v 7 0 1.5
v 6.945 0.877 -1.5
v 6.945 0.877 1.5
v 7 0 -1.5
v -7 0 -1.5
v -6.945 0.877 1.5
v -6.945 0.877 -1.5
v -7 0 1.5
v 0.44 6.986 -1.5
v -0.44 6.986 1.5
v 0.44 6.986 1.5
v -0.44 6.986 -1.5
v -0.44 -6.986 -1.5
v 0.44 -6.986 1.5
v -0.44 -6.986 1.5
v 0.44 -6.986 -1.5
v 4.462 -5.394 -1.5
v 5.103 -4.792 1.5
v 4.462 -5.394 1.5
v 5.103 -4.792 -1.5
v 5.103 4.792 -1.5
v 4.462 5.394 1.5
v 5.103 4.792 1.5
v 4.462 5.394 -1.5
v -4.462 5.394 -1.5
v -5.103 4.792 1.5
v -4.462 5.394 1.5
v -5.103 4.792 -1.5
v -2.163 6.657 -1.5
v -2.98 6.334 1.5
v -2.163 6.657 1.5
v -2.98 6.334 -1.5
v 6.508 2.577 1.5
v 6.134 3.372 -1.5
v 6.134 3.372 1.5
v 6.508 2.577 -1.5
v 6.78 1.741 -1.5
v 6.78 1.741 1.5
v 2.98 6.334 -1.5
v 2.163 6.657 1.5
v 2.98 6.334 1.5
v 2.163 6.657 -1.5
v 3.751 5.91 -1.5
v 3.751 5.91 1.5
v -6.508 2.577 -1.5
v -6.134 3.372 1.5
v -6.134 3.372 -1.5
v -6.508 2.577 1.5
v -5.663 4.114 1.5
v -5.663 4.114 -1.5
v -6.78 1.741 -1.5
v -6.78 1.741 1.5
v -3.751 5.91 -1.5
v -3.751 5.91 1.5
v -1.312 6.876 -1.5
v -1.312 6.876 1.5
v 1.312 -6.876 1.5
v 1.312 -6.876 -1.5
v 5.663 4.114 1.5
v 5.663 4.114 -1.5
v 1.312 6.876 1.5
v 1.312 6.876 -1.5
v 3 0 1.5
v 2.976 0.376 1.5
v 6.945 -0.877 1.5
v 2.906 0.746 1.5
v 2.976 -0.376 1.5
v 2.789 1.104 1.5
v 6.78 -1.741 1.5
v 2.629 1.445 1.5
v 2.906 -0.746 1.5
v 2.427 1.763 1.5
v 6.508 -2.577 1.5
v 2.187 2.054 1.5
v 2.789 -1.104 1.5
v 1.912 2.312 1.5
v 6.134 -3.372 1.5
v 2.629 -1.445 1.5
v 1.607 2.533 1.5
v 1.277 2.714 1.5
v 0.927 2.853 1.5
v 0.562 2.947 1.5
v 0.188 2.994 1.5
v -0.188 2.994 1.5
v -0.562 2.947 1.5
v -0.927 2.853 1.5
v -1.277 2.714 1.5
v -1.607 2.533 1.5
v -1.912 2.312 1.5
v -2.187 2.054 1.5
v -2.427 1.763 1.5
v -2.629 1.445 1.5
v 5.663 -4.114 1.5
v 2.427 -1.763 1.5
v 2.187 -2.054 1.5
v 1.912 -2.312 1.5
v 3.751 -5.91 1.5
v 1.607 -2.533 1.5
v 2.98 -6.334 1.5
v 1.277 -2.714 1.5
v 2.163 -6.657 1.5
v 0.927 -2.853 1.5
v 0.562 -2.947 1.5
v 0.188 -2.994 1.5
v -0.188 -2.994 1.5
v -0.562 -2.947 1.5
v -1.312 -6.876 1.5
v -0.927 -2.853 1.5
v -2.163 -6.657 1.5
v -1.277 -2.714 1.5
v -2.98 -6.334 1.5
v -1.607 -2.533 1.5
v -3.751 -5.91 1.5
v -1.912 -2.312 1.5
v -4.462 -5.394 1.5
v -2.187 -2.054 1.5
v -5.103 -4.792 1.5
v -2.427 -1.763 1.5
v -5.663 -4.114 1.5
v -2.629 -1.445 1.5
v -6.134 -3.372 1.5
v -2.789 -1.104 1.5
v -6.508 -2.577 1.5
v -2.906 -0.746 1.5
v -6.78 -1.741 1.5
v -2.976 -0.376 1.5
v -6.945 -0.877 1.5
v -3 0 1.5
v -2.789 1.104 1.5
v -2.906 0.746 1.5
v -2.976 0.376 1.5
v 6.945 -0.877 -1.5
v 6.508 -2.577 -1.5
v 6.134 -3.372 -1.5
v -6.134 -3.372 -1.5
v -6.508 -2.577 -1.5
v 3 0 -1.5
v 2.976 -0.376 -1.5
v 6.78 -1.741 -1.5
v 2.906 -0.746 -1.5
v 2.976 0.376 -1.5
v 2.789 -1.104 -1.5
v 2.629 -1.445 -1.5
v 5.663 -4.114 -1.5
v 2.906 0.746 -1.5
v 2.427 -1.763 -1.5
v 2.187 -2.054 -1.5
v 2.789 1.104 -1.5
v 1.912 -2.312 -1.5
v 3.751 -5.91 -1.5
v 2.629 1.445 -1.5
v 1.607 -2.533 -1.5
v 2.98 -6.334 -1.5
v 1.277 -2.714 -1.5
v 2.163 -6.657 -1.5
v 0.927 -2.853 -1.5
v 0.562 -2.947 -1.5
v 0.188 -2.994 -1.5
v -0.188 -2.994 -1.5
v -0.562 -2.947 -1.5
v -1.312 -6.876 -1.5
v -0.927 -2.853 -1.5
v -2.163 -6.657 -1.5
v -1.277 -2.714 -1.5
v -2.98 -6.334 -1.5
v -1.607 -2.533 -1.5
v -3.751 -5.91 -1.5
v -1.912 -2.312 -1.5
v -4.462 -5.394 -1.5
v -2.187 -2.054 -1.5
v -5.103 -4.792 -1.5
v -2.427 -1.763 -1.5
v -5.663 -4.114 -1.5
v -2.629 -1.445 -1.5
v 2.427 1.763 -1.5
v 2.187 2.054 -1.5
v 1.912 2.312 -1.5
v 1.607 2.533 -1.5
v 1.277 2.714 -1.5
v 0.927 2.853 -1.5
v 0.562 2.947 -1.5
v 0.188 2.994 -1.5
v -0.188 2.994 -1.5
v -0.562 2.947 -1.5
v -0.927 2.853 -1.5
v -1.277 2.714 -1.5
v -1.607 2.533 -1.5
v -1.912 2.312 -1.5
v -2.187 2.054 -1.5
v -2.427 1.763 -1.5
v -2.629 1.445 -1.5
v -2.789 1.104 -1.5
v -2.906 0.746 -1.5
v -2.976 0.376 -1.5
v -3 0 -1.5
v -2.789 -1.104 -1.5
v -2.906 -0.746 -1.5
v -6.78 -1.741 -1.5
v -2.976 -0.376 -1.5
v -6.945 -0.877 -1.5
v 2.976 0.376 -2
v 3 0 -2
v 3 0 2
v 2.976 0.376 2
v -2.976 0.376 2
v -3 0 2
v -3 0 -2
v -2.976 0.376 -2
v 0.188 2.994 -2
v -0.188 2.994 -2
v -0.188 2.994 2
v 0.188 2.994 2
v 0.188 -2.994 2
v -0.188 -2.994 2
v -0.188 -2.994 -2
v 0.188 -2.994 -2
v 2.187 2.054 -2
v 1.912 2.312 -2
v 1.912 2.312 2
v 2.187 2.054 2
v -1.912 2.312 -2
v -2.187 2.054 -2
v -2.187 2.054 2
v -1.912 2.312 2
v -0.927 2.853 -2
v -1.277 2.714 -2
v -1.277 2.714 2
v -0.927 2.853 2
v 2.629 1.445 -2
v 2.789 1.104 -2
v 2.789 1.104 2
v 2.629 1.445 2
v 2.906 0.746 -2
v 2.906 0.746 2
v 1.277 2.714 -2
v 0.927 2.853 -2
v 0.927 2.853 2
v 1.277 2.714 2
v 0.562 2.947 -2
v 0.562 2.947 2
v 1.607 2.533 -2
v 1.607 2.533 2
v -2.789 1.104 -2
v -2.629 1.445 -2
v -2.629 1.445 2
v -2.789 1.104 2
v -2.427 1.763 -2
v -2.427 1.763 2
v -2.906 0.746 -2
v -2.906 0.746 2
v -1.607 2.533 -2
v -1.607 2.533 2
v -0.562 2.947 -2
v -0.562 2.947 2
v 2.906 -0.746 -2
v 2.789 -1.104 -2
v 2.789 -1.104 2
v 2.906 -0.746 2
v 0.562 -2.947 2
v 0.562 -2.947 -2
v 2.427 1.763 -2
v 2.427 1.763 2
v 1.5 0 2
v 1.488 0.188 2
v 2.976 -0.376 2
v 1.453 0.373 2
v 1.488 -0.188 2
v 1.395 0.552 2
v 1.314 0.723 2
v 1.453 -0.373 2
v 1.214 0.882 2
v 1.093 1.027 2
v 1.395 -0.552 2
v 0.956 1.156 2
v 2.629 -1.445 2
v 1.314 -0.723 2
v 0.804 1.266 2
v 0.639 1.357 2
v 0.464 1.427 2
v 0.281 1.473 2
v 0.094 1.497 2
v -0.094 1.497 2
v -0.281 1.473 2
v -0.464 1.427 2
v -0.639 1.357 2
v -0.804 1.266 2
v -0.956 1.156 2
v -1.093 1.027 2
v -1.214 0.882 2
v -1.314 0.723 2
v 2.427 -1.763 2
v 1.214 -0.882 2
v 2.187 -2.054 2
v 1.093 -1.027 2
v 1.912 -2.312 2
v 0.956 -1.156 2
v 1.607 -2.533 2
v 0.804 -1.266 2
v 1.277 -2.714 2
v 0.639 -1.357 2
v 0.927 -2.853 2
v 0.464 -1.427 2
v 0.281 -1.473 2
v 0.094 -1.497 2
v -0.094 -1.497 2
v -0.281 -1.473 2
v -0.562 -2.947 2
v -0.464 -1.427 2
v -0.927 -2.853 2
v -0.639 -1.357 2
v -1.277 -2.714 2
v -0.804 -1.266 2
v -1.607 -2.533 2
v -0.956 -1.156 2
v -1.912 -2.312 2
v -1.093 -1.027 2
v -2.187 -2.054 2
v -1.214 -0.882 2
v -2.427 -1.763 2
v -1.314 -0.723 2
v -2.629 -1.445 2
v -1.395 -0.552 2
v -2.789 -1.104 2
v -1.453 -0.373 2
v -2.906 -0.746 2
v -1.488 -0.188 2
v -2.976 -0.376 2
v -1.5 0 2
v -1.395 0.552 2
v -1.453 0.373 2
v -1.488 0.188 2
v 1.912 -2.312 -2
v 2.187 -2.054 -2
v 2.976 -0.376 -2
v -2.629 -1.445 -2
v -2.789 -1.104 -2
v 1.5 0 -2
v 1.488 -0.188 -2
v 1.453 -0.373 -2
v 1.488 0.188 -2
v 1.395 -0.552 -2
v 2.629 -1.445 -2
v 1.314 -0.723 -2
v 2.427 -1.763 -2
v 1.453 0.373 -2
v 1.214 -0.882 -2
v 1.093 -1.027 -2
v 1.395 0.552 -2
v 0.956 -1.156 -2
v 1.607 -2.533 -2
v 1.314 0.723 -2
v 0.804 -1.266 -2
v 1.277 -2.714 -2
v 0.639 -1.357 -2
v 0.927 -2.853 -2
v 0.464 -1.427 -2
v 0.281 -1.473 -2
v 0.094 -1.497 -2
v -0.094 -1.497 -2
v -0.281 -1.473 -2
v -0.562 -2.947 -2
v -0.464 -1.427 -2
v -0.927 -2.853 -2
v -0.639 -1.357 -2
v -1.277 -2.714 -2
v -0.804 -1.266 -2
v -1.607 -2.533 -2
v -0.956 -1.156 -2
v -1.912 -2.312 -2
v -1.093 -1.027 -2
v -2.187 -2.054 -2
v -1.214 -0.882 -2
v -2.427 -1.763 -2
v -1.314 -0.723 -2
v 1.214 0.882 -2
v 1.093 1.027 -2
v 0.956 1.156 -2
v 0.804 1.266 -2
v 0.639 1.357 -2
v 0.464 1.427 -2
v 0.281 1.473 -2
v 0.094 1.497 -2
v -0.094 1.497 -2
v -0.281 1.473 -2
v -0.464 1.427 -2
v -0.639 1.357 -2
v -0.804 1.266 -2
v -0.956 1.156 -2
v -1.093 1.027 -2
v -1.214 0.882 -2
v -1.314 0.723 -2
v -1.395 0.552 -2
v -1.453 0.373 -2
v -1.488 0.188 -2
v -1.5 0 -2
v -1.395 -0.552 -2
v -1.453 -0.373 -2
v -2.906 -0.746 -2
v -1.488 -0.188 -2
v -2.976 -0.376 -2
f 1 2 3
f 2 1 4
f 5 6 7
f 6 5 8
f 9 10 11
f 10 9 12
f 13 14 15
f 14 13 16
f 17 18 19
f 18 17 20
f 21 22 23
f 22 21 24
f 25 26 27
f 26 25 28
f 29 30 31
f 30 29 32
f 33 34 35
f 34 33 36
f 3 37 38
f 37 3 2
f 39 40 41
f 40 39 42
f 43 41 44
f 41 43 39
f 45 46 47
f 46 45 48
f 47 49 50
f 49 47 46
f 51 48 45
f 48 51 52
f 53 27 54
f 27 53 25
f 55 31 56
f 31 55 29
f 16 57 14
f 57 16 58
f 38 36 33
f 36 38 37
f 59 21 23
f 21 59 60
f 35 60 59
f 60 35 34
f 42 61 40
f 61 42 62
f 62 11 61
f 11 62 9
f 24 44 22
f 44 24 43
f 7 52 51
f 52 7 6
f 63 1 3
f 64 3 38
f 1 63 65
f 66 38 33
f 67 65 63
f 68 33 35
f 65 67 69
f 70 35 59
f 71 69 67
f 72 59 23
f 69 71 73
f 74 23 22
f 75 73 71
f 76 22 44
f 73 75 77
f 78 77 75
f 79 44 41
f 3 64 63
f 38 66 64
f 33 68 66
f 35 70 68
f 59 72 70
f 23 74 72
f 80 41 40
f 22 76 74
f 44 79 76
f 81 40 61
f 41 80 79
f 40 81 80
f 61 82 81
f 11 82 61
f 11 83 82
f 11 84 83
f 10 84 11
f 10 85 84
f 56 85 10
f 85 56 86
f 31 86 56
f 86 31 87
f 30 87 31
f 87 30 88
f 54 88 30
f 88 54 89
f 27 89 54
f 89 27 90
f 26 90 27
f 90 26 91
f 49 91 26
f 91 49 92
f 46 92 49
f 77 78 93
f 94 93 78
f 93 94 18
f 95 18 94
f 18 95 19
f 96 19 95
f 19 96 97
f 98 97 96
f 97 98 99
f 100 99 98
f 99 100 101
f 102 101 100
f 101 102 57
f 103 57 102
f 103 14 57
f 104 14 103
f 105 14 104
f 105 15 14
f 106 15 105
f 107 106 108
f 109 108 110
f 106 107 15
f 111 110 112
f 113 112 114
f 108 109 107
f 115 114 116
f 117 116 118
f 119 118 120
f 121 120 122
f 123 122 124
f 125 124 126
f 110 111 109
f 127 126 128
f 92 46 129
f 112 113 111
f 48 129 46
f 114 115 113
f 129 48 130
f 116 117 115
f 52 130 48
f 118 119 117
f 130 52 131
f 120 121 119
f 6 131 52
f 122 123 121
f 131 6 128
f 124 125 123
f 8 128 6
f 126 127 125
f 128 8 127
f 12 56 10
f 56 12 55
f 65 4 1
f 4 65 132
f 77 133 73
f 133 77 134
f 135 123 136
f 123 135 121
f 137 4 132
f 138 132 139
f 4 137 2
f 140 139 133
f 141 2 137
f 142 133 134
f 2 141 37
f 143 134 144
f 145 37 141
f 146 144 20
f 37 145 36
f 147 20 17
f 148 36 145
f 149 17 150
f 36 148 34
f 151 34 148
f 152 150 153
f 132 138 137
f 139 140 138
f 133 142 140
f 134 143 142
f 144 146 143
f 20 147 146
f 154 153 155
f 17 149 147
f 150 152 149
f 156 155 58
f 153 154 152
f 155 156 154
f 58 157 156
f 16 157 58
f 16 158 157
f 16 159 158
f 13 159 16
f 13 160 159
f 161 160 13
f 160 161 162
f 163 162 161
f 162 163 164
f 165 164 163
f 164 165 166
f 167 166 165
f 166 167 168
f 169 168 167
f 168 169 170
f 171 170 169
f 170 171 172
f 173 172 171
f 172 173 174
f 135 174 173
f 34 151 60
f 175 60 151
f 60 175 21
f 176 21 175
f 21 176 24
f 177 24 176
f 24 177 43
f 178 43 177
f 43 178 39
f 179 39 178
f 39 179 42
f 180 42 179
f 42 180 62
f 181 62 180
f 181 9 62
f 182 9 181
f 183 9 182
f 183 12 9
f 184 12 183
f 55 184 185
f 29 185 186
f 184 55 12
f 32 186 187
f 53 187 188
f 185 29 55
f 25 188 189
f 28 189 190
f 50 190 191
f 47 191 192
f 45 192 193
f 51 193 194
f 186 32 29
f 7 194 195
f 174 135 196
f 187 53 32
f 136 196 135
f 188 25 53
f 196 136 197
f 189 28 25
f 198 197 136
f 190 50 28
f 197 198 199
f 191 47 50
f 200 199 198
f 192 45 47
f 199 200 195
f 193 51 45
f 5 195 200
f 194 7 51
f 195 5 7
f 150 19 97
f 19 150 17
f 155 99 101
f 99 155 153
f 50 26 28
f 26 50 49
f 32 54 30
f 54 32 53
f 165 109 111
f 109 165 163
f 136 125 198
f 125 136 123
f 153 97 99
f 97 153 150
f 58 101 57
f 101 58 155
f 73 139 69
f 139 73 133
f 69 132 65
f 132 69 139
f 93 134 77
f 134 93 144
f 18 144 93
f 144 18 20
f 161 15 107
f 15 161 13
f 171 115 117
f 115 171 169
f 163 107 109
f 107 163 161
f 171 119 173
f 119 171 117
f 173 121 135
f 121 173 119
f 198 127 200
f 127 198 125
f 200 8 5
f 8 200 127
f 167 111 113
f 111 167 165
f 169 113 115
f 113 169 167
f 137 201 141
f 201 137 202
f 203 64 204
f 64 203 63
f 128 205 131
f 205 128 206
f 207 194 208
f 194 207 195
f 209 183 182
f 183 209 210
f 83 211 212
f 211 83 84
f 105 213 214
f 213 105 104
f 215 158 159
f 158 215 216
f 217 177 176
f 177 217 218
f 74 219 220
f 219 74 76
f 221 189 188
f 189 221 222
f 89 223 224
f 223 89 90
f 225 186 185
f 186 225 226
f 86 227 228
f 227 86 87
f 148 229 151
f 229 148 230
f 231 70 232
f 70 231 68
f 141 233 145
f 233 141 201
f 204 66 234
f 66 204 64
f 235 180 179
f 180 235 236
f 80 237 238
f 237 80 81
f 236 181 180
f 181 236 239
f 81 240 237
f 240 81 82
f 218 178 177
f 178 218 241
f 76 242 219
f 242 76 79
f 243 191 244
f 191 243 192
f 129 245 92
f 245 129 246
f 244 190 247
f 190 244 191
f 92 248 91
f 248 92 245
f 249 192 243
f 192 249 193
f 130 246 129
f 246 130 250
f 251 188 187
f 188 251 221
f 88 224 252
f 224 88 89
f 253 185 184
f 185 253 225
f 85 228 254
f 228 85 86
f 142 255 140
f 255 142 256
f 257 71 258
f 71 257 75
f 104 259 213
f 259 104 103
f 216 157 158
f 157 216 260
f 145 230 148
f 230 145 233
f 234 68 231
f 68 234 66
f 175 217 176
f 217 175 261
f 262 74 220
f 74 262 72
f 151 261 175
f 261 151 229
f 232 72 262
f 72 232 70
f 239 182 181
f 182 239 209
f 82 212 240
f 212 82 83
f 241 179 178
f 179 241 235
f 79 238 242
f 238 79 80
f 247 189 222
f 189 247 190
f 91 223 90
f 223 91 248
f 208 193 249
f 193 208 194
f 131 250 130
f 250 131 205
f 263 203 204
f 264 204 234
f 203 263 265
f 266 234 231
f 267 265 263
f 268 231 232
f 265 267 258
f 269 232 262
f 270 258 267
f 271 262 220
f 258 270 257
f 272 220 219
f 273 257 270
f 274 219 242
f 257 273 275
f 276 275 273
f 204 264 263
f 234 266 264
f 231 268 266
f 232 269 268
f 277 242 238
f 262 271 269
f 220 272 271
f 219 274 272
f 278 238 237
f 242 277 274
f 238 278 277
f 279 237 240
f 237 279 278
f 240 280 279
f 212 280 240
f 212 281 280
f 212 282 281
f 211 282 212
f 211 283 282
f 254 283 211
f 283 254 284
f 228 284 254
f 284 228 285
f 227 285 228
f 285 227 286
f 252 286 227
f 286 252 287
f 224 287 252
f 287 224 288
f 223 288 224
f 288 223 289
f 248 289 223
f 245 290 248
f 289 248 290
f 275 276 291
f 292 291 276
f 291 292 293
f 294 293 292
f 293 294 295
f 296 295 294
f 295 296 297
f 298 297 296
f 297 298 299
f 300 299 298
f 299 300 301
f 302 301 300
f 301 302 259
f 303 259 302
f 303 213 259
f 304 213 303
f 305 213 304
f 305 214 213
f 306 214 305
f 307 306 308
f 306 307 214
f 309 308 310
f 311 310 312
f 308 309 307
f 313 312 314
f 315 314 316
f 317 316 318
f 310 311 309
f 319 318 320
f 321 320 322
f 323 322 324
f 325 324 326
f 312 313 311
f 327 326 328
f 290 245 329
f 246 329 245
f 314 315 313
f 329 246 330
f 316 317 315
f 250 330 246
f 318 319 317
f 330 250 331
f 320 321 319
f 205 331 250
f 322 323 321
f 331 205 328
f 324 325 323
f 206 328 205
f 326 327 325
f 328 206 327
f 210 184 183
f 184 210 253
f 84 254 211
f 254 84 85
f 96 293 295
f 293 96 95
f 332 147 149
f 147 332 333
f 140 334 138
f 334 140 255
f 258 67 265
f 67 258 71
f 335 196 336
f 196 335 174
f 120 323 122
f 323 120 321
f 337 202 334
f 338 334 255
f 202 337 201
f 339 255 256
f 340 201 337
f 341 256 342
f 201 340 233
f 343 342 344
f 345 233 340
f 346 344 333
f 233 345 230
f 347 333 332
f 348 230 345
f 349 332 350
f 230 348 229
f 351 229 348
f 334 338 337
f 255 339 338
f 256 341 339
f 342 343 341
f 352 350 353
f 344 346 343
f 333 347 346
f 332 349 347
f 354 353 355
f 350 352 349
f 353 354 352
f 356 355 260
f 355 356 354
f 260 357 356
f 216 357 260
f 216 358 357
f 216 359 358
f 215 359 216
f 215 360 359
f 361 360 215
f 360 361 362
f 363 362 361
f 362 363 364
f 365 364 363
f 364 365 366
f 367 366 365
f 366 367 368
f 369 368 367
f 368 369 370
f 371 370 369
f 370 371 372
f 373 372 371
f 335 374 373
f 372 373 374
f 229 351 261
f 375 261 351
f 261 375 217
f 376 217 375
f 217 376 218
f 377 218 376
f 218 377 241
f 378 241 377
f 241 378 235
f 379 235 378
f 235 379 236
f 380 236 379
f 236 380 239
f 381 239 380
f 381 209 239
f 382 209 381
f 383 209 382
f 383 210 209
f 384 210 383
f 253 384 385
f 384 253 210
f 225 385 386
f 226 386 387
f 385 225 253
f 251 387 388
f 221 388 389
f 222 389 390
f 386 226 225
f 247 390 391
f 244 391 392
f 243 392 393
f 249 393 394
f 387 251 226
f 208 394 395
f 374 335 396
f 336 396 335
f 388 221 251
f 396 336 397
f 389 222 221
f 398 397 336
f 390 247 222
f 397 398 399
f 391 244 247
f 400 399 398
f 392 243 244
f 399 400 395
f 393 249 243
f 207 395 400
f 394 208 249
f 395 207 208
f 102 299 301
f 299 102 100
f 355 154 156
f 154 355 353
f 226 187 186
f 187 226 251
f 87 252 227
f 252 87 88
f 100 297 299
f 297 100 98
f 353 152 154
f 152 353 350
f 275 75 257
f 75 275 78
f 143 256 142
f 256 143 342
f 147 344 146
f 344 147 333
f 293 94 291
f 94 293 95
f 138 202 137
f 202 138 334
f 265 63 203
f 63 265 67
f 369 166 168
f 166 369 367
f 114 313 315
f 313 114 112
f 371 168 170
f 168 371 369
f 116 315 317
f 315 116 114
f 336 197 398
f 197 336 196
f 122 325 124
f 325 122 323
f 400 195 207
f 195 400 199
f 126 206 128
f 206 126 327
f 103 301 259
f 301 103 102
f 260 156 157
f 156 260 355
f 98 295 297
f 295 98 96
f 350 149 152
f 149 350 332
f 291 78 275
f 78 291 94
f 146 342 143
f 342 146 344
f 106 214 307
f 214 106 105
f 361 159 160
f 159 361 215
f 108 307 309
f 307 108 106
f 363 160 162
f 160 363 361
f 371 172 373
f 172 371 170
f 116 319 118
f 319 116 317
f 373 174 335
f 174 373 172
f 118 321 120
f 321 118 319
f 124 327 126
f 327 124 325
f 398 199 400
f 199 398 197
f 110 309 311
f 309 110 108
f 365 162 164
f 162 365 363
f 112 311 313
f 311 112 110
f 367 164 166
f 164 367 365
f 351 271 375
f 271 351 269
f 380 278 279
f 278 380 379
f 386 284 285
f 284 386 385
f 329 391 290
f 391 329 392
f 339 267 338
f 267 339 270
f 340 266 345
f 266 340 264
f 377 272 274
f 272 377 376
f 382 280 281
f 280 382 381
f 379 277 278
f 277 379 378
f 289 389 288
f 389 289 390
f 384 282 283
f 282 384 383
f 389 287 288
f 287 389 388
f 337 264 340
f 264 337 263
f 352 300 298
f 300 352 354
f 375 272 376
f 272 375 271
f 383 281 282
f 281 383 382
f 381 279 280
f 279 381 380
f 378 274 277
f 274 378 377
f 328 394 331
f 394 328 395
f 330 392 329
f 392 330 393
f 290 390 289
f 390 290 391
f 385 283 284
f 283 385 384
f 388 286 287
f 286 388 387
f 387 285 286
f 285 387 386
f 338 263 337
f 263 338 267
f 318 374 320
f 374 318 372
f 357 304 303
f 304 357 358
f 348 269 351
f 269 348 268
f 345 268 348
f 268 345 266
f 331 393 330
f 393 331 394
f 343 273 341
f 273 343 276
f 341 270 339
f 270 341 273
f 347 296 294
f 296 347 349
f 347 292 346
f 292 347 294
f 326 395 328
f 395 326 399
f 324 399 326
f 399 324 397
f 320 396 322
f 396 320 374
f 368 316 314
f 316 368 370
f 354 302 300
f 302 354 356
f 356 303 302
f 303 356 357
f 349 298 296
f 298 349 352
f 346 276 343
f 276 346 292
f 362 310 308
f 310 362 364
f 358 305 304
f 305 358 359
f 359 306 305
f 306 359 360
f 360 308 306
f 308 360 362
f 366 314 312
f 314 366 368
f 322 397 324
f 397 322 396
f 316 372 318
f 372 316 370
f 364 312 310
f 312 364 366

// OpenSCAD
$fn = 50;


difference() {
	union() {
		translate(v = [0, 0, -1.5000000000]) {
			rotate(a = [0, 0, 0]) {
				cylinder(h = 3, r = 7.0000000000);
			}
		}
		translate(v = [0, 0, -2.0000000000]) {
			rotate(a = [0, 0, 0]) {
				cylinder(h = 4, r = 3.0000000000);
			}
		}
	}
	union() {
		translate(v = [0, 0, -125.0000000000]) {
			rotate(a = [0, 0, 0]) {
				cylinder(h = 250, r = 1.5000000000);
			}
		}
	}
}
